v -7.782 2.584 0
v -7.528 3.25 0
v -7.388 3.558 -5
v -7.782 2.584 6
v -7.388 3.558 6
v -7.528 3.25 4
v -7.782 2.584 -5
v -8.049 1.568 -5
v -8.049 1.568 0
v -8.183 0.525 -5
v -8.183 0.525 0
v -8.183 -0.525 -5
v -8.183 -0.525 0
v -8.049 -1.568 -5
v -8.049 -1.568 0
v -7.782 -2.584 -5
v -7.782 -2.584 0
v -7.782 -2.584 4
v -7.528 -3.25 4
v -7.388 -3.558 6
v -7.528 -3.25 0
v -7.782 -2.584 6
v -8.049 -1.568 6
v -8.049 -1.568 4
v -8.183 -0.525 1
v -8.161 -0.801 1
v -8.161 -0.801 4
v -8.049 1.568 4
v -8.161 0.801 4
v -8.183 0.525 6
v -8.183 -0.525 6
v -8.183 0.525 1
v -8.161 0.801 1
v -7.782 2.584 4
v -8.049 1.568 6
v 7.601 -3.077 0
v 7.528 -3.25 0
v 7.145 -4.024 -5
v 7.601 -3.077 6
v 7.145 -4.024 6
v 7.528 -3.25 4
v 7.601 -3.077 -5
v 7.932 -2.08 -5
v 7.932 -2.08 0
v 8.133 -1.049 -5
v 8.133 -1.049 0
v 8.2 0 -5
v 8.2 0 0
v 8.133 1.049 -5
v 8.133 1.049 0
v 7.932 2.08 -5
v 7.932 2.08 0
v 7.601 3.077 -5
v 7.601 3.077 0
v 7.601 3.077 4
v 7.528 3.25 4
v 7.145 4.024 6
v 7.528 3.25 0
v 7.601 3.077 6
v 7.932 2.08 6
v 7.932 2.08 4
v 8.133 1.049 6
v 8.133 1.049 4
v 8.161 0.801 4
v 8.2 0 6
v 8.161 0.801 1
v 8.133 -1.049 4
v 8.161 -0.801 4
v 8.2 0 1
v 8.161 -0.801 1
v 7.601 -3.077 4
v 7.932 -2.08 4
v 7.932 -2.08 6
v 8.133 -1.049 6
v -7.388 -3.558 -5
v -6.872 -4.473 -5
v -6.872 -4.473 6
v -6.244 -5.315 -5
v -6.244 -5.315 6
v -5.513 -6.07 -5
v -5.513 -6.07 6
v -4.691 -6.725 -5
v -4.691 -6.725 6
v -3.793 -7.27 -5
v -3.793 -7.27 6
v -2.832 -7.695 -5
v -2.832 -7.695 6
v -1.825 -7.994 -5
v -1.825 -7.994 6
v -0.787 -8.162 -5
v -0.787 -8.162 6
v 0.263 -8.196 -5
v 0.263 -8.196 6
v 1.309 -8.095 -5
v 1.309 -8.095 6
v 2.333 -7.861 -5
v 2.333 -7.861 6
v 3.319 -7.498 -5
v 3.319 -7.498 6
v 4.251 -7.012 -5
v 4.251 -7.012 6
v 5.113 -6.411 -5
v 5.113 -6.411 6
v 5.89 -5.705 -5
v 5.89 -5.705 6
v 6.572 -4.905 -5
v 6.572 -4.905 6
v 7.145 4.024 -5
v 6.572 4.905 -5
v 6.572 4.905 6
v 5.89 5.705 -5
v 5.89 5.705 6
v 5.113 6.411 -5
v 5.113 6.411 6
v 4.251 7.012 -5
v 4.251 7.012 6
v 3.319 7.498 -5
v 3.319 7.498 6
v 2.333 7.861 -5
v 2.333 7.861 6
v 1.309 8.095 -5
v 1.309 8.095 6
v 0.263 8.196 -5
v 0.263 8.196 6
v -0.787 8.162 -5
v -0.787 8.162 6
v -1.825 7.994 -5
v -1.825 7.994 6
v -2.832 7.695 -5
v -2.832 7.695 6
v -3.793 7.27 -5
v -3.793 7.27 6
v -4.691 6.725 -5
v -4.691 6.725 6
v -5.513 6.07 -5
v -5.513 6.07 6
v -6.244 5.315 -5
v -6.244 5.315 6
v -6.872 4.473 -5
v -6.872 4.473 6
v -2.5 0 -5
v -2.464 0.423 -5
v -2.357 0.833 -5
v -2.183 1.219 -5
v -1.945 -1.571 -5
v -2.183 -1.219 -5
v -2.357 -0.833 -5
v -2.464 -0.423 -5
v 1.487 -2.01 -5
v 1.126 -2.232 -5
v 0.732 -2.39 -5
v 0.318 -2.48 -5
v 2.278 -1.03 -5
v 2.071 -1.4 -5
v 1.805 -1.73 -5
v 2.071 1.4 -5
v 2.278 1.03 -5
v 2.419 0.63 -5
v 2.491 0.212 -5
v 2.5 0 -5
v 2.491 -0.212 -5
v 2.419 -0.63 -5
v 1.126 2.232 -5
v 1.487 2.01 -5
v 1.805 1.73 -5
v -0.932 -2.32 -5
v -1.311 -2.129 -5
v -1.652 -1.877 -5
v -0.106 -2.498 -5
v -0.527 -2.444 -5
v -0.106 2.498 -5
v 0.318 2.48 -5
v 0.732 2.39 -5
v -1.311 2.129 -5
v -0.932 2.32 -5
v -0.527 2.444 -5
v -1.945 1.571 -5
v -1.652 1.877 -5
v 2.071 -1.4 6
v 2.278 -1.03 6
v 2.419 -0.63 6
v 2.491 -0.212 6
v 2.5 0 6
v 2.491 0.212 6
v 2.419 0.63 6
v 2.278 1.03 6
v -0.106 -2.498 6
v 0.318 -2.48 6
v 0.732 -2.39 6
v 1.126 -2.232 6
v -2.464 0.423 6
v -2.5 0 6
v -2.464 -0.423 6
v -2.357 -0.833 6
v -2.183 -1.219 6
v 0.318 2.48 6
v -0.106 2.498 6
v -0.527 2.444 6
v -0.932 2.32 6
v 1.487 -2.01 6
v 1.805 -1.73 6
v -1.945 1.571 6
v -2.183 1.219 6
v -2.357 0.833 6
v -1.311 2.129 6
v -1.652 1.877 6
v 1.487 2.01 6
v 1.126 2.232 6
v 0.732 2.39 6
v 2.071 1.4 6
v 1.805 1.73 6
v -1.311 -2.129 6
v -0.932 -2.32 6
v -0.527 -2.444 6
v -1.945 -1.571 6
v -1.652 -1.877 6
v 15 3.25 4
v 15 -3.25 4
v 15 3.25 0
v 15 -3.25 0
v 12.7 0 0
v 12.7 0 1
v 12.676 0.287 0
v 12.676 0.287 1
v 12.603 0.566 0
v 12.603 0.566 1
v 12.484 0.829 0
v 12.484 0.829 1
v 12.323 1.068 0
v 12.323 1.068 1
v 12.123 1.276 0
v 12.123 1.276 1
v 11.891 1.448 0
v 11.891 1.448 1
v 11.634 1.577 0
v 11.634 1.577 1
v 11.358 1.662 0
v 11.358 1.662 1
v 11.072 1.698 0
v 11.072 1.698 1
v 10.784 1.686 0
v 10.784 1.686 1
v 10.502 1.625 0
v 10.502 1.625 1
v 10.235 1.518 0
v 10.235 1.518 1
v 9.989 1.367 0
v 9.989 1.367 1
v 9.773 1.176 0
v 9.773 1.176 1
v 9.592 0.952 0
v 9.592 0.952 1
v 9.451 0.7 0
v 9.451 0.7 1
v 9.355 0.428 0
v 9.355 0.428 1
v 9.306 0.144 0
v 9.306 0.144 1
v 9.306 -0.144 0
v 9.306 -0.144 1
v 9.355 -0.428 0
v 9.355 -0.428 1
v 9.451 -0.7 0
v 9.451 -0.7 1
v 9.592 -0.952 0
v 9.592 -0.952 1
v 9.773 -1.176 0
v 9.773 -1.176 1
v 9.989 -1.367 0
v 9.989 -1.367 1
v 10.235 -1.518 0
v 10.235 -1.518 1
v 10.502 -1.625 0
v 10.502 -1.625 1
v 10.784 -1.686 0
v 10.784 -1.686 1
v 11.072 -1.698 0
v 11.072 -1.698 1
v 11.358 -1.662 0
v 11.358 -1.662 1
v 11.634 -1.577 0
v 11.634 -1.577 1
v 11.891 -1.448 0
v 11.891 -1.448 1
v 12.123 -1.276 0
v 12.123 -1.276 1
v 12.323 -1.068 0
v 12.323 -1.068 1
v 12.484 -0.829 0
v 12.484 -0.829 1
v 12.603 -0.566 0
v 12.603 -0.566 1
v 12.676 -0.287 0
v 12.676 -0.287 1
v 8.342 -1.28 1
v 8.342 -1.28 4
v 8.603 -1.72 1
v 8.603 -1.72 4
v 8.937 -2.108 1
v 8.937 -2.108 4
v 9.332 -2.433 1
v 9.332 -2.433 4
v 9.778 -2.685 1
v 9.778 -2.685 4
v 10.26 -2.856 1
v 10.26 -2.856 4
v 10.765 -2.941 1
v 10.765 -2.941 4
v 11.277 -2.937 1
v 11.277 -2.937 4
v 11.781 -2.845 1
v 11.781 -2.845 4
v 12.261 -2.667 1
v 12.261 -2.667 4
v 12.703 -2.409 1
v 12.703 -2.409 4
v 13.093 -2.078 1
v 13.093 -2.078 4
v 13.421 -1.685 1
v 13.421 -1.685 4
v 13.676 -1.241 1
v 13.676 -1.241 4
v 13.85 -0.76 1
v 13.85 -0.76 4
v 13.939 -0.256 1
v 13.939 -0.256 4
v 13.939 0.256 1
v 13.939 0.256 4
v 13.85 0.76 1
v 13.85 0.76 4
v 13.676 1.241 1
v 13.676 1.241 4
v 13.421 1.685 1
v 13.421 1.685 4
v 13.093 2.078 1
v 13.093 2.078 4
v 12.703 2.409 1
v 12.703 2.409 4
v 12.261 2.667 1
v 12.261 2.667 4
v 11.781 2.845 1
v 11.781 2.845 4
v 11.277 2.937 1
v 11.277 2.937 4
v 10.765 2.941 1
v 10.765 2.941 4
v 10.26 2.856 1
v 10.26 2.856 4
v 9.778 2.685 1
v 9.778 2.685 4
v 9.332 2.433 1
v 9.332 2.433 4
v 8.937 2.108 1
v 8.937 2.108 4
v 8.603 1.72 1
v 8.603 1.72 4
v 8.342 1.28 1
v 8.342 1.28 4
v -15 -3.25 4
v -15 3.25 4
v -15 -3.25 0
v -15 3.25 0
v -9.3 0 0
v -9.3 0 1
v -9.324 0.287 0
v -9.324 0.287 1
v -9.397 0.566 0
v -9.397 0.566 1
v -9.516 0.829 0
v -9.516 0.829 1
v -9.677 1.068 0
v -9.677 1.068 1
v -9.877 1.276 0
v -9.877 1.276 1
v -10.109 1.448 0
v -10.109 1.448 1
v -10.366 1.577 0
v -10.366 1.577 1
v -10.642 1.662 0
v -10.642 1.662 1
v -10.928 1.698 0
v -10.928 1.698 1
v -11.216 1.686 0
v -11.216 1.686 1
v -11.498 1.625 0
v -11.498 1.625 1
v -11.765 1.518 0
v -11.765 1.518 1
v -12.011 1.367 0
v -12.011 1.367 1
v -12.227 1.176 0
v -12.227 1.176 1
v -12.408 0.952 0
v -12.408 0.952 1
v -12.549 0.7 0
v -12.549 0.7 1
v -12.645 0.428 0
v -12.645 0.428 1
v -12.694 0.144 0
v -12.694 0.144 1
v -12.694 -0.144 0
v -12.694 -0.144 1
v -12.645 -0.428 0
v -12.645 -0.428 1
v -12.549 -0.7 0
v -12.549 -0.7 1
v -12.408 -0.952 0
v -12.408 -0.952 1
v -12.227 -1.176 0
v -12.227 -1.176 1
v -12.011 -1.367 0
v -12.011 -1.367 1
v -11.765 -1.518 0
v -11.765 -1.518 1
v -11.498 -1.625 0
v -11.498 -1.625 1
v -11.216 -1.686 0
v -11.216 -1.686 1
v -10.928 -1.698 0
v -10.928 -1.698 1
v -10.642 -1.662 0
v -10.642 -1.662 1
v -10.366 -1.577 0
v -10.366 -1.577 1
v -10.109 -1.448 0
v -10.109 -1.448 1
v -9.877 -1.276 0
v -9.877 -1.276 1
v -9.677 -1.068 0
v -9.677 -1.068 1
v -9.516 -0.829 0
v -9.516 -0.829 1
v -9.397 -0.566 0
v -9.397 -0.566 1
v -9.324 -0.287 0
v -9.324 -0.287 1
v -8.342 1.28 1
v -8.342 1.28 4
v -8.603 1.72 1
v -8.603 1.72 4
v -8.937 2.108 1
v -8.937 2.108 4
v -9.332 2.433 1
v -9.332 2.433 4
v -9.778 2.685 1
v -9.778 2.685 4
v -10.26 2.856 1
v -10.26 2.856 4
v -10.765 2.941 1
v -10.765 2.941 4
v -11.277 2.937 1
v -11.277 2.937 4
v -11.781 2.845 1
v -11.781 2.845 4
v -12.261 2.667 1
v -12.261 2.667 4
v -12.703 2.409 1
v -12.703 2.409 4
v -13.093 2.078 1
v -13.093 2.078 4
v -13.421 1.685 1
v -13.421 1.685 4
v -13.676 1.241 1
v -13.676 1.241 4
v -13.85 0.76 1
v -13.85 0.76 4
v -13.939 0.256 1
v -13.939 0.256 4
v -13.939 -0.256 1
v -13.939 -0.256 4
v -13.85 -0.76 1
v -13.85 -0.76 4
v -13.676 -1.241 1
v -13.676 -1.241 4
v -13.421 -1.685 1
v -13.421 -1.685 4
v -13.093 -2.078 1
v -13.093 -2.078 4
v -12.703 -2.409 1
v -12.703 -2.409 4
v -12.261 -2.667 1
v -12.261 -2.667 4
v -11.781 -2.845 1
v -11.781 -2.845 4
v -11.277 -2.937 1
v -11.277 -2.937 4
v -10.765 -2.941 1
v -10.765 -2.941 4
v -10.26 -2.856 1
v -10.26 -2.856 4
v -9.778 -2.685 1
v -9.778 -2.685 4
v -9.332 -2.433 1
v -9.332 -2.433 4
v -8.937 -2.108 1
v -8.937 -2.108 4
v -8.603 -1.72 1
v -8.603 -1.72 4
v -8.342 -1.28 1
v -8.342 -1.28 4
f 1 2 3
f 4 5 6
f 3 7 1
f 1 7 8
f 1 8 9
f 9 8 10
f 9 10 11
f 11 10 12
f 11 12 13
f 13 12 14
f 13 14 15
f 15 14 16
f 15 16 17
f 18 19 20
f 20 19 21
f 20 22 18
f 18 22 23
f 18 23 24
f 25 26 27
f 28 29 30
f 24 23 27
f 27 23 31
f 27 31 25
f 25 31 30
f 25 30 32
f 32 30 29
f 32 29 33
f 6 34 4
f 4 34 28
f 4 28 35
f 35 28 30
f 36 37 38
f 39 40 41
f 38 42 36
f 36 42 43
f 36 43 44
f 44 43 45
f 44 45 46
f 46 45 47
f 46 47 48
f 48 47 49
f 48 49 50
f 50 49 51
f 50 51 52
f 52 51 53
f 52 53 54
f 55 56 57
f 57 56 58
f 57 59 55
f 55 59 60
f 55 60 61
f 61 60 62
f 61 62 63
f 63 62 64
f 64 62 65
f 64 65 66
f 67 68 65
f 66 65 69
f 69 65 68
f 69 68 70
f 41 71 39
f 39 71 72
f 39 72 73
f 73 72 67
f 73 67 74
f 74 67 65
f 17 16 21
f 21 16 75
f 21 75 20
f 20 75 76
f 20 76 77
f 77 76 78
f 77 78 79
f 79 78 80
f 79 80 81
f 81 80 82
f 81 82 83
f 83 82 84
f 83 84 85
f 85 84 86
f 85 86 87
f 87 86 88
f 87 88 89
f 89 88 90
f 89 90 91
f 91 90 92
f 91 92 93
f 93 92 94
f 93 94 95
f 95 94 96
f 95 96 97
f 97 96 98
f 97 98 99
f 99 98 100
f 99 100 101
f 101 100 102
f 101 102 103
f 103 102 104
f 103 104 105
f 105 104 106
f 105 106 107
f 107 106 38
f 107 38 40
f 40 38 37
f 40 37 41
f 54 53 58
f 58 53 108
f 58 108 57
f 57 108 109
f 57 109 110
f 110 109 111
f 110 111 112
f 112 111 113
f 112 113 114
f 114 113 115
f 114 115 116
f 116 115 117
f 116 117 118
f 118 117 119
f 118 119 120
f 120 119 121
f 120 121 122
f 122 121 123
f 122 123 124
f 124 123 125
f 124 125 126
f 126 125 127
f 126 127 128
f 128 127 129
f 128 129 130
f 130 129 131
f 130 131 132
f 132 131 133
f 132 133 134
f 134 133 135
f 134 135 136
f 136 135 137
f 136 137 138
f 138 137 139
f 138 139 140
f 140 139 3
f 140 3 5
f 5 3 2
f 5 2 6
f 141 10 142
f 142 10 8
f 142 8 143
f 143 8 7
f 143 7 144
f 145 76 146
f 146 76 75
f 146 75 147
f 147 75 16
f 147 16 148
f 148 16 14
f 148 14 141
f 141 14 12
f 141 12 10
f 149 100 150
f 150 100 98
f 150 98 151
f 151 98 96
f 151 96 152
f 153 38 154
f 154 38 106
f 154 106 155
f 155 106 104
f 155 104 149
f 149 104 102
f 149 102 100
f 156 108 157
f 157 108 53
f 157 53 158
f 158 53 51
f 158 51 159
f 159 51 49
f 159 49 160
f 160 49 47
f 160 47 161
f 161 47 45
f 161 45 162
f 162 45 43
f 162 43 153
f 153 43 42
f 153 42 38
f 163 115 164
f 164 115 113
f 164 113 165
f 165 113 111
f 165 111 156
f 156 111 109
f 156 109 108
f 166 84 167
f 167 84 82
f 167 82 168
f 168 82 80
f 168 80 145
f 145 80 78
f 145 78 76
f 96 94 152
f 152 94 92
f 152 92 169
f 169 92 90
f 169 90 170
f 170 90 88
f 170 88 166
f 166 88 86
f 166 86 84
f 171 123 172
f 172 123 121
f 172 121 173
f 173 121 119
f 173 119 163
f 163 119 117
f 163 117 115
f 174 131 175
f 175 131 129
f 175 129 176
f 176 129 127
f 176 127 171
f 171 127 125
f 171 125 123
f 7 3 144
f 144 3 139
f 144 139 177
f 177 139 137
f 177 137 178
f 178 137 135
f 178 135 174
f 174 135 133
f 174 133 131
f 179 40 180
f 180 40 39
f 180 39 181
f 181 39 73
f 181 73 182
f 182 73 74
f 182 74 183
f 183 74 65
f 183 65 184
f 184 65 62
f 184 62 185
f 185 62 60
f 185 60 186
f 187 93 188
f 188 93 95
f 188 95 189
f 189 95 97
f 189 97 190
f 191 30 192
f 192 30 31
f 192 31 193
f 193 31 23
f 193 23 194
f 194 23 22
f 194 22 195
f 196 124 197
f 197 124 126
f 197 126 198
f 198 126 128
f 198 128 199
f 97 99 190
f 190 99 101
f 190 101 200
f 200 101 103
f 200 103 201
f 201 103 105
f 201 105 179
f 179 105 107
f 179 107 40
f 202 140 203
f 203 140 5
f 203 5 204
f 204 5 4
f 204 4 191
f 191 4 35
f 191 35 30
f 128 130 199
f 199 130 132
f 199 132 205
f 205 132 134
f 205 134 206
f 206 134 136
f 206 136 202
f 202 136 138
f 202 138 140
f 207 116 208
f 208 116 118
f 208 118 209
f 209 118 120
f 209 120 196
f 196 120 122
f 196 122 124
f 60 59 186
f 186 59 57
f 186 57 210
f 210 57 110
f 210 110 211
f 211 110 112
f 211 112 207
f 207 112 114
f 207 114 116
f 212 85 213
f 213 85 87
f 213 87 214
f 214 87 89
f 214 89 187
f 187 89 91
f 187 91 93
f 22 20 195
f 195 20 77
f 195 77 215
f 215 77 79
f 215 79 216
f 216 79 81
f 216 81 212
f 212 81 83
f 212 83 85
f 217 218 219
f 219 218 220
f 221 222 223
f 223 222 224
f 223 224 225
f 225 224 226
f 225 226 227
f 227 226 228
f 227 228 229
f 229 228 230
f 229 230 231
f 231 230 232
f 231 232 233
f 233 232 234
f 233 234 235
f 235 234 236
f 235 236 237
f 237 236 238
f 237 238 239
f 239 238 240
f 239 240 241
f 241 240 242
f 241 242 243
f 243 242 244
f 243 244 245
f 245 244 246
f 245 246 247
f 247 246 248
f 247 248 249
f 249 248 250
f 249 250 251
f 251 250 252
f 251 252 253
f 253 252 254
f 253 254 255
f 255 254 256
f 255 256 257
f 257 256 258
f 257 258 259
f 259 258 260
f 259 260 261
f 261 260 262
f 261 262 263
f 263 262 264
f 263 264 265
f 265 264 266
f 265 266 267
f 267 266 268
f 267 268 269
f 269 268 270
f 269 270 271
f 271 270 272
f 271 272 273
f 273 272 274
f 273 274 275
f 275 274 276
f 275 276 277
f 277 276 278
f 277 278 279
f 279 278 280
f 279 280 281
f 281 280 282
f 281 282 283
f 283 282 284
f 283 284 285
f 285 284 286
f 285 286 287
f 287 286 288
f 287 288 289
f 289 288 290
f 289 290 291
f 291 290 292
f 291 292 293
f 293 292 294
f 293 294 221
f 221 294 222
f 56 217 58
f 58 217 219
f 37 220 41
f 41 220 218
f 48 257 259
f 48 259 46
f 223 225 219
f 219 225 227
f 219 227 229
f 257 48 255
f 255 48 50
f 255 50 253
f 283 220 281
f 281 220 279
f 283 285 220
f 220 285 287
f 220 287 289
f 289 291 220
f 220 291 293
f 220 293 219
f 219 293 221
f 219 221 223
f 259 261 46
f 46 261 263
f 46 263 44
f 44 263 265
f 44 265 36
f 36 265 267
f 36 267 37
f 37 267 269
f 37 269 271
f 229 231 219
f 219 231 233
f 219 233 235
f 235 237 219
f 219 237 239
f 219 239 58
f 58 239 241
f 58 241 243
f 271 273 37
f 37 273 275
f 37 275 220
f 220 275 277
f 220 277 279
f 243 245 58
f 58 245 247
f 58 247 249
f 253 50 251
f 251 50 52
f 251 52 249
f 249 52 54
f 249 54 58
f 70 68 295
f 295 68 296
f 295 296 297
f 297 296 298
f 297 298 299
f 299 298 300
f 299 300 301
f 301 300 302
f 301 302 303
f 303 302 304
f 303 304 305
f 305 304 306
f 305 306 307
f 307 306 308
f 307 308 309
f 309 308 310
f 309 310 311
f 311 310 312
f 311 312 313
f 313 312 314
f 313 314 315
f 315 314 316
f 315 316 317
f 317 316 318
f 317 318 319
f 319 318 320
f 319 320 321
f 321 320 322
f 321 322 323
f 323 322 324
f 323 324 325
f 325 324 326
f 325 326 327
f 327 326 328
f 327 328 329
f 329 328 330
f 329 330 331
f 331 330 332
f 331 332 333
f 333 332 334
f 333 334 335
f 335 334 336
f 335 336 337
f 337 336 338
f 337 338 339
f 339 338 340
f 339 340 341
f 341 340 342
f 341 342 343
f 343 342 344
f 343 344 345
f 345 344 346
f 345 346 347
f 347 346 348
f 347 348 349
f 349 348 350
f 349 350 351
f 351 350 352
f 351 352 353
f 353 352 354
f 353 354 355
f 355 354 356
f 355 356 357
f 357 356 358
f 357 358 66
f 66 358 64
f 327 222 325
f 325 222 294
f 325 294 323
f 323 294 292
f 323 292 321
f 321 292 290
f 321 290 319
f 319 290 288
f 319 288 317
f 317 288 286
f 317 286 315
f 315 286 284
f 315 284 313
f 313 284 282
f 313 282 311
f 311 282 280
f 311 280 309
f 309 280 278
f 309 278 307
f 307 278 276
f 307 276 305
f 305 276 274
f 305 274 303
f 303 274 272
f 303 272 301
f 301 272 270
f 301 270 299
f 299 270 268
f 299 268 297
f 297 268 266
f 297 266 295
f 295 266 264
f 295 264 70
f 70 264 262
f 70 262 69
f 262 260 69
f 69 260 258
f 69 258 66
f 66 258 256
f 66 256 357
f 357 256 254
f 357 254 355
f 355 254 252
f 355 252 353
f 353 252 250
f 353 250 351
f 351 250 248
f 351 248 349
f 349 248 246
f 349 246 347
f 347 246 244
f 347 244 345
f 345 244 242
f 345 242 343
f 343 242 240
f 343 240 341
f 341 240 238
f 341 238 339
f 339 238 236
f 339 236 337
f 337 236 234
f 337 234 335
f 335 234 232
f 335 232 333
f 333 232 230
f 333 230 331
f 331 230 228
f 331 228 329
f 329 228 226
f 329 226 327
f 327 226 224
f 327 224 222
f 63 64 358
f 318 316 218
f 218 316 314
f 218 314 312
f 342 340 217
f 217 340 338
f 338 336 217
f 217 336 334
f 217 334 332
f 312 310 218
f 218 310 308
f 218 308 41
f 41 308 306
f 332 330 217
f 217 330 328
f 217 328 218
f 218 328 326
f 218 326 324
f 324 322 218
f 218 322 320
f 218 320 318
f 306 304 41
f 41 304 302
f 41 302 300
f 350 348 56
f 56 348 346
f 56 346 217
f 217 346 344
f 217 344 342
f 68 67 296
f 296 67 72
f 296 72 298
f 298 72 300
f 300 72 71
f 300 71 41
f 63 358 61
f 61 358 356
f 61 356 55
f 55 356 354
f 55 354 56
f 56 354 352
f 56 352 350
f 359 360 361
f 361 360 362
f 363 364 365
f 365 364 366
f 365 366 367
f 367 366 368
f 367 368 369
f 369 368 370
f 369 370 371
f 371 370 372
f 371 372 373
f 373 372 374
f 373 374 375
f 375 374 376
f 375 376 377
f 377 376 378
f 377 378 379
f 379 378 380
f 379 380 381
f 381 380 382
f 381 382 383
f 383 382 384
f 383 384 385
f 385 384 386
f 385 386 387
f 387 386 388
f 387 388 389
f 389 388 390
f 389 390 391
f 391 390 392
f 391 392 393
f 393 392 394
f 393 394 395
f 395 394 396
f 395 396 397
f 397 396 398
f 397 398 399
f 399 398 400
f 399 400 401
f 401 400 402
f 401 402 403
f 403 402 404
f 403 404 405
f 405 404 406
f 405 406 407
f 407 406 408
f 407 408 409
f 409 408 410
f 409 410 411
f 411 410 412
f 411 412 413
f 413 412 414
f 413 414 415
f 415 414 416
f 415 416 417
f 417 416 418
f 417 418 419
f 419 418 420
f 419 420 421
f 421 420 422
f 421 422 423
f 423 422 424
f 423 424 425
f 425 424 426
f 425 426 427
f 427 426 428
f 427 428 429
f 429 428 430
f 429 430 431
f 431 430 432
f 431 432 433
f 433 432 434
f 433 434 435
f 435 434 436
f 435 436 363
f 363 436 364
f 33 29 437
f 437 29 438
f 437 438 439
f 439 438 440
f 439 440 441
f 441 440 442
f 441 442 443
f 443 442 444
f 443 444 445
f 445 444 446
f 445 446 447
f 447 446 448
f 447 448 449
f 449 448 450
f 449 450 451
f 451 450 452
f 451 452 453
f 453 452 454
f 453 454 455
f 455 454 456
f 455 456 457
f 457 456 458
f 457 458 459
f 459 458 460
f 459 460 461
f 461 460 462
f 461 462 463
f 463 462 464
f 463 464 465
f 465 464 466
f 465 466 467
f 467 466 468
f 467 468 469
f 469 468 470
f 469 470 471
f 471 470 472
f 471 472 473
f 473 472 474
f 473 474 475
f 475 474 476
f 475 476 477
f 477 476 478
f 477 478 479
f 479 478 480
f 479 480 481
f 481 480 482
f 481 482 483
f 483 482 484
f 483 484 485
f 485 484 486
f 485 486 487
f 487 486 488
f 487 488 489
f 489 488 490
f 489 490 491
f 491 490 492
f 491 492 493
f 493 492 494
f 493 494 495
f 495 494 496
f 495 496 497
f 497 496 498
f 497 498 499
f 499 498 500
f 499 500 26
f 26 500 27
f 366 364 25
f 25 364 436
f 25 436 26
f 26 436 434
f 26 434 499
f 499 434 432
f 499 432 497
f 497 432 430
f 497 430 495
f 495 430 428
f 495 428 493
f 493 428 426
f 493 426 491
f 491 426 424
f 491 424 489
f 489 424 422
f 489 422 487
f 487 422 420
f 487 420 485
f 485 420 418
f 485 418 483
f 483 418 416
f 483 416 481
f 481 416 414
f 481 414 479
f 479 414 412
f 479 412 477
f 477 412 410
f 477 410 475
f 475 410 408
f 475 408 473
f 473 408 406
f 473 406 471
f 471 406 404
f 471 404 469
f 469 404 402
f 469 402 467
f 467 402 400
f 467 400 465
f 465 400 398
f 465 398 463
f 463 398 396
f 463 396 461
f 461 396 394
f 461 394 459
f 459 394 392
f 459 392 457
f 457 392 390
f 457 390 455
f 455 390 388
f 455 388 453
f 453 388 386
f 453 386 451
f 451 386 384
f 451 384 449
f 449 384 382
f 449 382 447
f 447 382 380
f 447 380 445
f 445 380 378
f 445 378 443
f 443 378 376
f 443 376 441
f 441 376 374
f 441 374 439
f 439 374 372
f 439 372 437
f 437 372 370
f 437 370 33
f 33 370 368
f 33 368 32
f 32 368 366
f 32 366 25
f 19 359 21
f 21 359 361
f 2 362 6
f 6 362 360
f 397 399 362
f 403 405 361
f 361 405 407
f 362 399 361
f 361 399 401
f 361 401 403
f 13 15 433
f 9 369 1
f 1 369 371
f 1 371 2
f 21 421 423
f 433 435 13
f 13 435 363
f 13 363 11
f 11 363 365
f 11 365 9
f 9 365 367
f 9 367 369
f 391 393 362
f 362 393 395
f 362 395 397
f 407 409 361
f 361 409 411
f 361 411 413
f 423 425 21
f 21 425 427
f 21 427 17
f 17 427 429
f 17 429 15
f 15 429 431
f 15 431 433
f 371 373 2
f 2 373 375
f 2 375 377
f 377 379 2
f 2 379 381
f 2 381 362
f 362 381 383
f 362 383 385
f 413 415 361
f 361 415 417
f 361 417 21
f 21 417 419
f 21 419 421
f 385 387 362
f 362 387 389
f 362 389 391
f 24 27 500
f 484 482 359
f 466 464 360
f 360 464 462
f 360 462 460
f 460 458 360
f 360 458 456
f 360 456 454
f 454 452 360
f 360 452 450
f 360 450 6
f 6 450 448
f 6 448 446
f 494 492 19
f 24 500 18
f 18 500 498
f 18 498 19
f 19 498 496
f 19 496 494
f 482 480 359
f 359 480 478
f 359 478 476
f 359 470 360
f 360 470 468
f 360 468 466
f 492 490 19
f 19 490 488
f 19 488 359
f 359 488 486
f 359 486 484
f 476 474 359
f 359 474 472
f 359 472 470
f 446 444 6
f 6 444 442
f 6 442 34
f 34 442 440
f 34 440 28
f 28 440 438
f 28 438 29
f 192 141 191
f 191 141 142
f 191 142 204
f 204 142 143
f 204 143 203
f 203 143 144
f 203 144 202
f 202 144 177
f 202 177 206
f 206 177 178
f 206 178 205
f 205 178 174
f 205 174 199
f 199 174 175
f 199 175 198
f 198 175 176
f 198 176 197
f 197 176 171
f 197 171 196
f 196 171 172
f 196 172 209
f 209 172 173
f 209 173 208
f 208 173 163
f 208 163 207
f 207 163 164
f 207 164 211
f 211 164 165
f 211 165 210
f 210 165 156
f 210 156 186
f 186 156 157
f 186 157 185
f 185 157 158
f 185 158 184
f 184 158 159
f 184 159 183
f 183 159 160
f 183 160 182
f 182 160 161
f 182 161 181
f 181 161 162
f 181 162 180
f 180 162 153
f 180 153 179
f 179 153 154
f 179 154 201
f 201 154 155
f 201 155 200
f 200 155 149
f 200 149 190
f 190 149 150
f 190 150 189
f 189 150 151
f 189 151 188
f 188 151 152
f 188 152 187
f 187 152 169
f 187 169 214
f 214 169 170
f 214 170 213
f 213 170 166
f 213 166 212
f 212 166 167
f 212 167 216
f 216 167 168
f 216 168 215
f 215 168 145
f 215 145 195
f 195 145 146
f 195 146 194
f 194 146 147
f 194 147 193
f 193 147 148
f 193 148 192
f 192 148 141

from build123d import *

# Parameters (mm, degrees)
CROQUIS1_R                   = 2.5
SALIENTE_EXTRUIR1_DEPTH      = 4
CROQUIS2_R                   = 1.7
CORTAR_EXTRUIR1_DEPTH        = 4
CROQUIS3_R                   = 2.95
CORTAR_EXTRUIR2_DEPTH        = 3
CROQUIS4_R                   = 8.2
CROQUIS4_R_2                 = 2.5
SALIENTE_EXTRUIR2_DEPTH      = 2
SALIENTE_EXTRUIR2_DEPTH_BACK = 9


with BuildPart() as part:
    # Croquis1 → Saliente-Extruir1 (new body)
    with BuildSketch(Plane.XY):
        with BuildLine():
            Line((-7.200520814, 3.25), (-15, 3.25))
            Line((-15, 3.25), (-15, -3.25))
            Line((-15, -3.25), (-7.200520814, -3.25))
            ThreePointArc((-7.200520814, -3.25), (0, -7.9), (7.200520814, -3.25))
            Line((7.200520814, -3.25), (15, -3.25))
            Line((15, -3.25), (15, 3.25))
            Line((15, 3.25), (7.200520814, 3.25))
            ThreePointArc((7.200520814, 3.25), (0, 7.9), (-7.200520814, 3.25))
        make_face()
        Circle(CROQUIS1_R, mode=Mode.SUBTRACT)
    extrude(amount=SALIENTE_EXTRUIR1_DEPTH)

    # Croquis2 → Cortar-Extruir1 (cut)
    with BuildSketch(Plane.XY.offset(4)):
        with Locations((-11, 0)):
            Circle(CROQUIS2_R)
        with Locations((11, 0)):
            Circle(CROQUIS2_R)
    extrude(amount=-CORTAR_EXTRUIR1_DEPTH, mode=Mode.SUBTRACT)

    # Croquis3 → Cortar-Extruir2 (cut)
    with BuildSketch(Plane.XY.offset(4)):
        with Locations((-11, 0)):
            Circle(CROQUIS3_R)
        with Locations((11, 0)):
            Circle(CROQUIS3_R)
    extrude(amount=-CORTAR_EXTRUIR2_DEPTH, mode=Mode.SUBTRACT)

    # Croquis4 → Saliente-Extruir2 (add, two sides)
    with BuildSketch(Plane.XY.offset(4)) as saliente_extruir2_sk:
        Circle(CROQUIS4_R)
        Circle(CROQUIS4_R_2, mode=Mode.SUBTRACT)
    extrude(amount=SALIENTE_EXTRUIR2_DEPTH)
    extrude(saliente_extruir2_sk.sketch, amount=-SALIENTE_EXTRUIR2_DEPTH_BACK)


solid = part.part
